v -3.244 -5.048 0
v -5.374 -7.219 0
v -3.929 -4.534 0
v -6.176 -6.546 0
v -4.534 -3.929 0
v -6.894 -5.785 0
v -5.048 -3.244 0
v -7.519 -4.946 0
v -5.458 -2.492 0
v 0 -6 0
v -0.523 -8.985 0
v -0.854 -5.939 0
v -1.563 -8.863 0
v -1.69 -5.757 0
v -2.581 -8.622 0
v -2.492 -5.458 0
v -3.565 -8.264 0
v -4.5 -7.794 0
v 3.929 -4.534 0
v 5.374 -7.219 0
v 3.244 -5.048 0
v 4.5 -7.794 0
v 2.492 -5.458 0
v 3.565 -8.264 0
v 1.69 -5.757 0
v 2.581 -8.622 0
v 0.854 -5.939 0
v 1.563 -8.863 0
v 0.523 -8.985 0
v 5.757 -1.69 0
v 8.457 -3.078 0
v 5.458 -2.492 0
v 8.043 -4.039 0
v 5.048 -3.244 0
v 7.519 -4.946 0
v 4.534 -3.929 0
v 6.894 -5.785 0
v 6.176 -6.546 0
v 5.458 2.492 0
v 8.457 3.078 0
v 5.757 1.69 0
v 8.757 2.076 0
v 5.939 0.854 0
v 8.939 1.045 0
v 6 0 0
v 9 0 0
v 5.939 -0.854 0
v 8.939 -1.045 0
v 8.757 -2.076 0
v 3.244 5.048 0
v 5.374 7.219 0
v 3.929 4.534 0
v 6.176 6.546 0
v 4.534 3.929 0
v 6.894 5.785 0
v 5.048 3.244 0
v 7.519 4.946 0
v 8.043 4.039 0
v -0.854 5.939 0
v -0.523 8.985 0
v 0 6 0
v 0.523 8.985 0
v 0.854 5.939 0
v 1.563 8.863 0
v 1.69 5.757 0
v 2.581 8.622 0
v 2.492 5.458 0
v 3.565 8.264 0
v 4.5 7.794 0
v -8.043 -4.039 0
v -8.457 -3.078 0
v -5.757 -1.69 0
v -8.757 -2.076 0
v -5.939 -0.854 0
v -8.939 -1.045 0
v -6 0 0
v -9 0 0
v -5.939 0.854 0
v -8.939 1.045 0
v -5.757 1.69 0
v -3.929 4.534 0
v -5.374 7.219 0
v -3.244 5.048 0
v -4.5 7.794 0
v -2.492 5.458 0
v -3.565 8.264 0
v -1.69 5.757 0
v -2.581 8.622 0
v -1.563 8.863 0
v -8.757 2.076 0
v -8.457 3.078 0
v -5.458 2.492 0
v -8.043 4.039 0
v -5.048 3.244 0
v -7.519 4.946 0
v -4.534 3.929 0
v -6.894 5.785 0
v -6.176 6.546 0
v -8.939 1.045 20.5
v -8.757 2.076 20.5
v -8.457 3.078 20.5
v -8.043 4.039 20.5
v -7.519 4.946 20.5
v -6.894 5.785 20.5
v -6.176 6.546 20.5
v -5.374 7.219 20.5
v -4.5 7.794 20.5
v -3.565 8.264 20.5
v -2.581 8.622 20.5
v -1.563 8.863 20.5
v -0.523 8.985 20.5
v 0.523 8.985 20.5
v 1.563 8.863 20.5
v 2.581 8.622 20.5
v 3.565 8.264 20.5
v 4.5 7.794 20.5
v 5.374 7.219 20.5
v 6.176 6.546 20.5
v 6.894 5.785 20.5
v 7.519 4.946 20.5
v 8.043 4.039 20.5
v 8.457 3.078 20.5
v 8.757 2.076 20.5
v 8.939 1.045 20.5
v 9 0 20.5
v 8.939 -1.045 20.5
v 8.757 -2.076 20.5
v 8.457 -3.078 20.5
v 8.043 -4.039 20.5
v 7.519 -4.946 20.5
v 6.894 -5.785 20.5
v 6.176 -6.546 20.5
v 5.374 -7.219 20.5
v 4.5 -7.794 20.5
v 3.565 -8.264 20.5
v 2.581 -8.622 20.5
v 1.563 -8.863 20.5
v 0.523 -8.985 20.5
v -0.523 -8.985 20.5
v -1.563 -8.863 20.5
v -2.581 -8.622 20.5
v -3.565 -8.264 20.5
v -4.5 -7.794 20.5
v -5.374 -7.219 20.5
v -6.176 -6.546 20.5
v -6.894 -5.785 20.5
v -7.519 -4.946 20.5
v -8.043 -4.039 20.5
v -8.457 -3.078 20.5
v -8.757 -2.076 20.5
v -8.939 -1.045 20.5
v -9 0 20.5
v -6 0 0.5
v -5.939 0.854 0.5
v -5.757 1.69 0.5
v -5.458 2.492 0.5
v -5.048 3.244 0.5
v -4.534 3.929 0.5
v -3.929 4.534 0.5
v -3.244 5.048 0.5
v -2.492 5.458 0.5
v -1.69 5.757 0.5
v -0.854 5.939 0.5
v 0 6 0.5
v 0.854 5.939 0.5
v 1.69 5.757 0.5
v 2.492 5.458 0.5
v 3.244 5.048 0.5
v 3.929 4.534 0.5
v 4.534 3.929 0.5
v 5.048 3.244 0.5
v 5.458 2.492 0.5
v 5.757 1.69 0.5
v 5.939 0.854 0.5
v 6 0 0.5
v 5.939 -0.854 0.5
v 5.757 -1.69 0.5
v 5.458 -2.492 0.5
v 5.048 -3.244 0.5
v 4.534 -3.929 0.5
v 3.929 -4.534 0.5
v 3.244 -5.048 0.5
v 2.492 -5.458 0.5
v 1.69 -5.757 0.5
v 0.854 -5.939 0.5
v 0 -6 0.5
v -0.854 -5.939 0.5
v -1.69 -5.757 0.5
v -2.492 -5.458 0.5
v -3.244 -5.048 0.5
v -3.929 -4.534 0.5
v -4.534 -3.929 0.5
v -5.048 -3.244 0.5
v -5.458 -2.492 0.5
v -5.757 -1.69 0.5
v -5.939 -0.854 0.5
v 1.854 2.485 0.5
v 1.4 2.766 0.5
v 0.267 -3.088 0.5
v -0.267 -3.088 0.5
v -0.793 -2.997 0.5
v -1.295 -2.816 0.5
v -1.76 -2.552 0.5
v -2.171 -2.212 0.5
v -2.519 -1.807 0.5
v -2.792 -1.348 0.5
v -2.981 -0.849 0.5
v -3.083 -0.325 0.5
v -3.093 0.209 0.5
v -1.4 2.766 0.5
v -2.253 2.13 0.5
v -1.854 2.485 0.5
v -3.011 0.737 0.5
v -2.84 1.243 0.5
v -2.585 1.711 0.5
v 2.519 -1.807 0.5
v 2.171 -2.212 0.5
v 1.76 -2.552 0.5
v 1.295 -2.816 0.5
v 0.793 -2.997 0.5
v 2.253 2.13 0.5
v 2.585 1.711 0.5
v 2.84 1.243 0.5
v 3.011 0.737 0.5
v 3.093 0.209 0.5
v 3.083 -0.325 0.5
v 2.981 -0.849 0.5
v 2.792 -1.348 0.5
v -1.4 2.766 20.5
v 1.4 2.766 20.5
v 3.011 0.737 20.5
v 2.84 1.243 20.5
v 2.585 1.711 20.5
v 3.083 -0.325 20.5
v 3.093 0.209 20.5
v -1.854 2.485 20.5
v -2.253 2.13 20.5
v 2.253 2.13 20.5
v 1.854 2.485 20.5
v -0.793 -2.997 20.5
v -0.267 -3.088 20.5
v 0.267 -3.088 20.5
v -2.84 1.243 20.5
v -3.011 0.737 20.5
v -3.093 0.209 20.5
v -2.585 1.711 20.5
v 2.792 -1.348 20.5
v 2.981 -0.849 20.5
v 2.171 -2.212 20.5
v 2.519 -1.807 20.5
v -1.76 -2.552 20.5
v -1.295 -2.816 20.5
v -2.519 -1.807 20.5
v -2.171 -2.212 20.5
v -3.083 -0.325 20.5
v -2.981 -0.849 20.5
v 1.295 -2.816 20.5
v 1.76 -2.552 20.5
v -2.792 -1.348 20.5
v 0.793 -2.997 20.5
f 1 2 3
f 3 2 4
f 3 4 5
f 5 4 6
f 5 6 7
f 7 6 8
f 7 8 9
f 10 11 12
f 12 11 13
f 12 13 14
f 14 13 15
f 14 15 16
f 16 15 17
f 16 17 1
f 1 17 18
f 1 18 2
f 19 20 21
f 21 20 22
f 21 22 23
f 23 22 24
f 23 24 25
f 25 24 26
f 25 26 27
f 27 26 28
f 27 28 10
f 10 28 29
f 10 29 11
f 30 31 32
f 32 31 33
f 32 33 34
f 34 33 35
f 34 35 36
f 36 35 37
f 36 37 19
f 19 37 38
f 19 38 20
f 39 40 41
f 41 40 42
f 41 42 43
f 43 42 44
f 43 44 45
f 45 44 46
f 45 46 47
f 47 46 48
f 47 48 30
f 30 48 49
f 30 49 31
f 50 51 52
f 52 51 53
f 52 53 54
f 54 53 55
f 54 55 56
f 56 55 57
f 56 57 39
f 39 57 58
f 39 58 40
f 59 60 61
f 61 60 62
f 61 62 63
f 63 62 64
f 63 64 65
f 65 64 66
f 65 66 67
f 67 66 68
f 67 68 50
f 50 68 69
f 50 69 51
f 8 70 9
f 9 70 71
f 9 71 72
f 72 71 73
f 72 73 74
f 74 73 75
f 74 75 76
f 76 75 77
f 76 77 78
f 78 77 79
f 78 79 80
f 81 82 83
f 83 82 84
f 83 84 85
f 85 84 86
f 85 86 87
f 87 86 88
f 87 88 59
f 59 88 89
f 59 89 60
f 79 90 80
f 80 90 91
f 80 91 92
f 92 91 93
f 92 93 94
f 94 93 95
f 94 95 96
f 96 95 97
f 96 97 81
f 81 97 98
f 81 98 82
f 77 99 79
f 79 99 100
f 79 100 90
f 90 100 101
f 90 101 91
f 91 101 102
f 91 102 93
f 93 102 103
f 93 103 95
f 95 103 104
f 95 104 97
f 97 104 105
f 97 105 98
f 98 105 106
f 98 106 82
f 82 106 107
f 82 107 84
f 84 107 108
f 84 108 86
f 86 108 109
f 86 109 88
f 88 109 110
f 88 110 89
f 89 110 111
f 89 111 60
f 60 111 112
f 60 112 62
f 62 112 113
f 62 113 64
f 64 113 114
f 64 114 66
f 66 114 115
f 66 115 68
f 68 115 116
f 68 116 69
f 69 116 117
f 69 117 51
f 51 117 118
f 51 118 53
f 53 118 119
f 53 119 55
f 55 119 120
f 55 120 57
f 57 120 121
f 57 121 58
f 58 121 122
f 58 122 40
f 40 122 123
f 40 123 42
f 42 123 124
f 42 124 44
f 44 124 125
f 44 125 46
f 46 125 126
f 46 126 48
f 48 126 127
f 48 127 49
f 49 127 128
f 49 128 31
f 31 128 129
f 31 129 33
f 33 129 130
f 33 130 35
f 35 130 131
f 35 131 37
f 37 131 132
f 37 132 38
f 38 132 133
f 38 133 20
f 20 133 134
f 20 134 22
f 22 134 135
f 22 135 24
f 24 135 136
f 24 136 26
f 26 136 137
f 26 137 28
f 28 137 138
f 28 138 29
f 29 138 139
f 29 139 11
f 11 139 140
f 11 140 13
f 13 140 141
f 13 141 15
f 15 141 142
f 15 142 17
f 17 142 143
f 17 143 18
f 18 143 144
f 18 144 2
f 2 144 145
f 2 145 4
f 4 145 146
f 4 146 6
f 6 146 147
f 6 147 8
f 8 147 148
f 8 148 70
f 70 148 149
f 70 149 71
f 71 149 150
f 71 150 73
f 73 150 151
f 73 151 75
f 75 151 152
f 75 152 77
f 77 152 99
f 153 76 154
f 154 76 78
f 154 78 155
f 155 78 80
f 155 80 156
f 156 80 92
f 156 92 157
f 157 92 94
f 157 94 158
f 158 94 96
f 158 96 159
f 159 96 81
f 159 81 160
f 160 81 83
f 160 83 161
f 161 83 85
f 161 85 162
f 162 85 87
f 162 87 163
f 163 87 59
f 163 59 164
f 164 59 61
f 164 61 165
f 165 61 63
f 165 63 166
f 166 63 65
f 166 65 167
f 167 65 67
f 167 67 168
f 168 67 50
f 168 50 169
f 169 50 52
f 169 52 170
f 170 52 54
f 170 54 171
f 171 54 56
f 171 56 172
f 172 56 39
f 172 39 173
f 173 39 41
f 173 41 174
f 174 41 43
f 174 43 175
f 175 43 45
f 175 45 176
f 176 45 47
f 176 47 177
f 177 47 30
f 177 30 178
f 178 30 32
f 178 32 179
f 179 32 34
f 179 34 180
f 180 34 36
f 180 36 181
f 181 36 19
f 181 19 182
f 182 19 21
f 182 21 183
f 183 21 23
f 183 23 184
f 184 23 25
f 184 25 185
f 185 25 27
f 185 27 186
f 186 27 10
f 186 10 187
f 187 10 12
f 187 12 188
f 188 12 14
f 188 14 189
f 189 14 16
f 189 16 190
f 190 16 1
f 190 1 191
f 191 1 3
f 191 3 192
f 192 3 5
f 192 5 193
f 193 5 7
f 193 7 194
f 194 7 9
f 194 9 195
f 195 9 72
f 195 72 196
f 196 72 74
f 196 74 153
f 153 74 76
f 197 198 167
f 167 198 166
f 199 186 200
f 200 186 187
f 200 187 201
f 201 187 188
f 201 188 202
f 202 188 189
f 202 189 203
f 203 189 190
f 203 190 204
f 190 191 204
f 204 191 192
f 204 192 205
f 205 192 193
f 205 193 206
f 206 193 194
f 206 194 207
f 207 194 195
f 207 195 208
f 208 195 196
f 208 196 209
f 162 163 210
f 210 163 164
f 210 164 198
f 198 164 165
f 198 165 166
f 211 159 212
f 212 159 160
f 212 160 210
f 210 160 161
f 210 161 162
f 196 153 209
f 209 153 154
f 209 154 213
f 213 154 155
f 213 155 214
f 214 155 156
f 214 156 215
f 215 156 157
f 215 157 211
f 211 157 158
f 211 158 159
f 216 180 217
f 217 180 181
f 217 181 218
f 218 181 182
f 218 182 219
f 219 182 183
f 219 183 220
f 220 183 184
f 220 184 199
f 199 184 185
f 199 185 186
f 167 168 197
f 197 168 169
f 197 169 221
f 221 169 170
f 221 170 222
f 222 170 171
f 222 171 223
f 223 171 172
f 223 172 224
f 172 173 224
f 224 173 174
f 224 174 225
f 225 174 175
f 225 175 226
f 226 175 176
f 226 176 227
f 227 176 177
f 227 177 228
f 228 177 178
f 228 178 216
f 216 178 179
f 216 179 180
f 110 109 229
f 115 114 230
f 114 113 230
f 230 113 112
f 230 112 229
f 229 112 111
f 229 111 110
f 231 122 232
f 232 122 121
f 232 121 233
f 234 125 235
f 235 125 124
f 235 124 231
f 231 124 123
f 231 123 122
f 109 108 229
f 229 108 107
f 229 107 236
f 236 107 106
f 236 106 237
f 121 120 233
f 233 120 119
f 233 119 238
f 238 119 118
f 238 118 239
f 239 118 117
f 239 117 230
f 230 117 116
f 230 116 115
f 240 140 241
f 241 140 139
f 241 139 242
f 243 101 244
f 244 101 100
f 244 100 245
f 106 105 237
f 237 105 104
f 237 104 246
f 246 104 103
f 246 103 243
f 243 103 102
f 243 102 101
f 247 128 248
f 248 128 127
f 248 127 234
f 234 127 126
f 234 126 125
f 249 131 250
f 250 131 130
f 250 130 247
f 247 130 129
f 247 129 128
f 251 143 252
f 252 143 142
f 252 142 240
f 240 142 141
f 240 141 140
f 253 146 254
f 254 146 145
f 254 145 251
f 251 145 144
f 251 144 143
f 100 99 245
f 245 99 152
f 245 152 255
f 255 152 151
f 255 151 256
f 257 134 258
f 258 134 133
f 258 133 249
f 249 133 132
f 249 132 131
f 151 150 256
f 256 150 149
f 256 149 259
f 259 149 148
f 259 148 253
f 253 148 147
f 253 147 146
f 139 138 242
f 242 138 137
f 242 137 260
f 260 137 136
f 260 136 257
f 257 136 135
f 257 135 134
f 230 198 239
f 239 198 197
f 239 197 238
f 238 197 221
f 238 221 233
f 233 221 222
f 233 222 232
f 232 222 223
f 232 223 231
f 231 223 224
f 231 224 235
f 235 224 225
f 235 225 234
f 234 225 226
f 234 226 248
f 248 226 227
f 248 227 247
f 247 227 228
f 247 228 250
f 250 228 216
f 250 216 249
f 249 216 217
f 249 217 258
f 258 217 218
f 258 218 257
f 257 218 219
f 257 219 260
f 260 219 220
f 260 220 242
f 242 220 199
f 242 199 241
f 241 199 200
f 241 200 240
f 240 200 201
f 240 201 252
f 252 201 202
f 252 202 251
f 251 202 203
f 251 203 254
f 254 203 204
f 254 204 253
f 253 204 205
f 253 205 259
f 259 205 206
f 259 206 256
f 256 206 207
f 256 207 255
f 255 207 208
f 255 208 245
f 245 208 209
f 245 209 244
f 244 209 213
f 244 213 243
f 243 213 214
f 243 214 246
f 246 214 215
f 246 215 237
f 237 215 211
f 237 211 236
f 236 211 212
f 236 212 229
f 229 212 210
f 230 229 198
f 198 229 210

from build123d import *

# Parameters (mm, degrees)
SKETCH2_R             = 9
SKETCH2_R_2           = 6
LARGE_SHAFT_CUT_DEPTH = 0.5
SKETCH3_R             = 9
KEYED_SHAFT_CUT_DEPTH = 20


with BuildPart() as part:
    # Sketch2 → Large Shaft Cut (new body)
    with BuildSketch(Plane.XY):
        Circle(SKETCH2_R)
        Circle(SKETCH2_R_2, mode=Mode.SUBTRACT)
    extrude(amount=LARGE_SHAFT_CUT_DEPTH)

    # Sketch3 → Keyed Shaft Cut (add)
    with BuildSketch(Plane.XY.offset(0.5)):
        Circle(SKETCH3_R)
        with BuildLine():
            Line((-1.4, 2.765863337), (1.4, 2.765863337))
            ThreePointArc((1.4, 2.765863337), (0, -3.1), (-1.4, 2.765863337))
        make_face(mode=Mode.SUBTRACT)
    extrude(amount=KEYED_SHAFT_CUT_DEPTH)


solid = part.part
